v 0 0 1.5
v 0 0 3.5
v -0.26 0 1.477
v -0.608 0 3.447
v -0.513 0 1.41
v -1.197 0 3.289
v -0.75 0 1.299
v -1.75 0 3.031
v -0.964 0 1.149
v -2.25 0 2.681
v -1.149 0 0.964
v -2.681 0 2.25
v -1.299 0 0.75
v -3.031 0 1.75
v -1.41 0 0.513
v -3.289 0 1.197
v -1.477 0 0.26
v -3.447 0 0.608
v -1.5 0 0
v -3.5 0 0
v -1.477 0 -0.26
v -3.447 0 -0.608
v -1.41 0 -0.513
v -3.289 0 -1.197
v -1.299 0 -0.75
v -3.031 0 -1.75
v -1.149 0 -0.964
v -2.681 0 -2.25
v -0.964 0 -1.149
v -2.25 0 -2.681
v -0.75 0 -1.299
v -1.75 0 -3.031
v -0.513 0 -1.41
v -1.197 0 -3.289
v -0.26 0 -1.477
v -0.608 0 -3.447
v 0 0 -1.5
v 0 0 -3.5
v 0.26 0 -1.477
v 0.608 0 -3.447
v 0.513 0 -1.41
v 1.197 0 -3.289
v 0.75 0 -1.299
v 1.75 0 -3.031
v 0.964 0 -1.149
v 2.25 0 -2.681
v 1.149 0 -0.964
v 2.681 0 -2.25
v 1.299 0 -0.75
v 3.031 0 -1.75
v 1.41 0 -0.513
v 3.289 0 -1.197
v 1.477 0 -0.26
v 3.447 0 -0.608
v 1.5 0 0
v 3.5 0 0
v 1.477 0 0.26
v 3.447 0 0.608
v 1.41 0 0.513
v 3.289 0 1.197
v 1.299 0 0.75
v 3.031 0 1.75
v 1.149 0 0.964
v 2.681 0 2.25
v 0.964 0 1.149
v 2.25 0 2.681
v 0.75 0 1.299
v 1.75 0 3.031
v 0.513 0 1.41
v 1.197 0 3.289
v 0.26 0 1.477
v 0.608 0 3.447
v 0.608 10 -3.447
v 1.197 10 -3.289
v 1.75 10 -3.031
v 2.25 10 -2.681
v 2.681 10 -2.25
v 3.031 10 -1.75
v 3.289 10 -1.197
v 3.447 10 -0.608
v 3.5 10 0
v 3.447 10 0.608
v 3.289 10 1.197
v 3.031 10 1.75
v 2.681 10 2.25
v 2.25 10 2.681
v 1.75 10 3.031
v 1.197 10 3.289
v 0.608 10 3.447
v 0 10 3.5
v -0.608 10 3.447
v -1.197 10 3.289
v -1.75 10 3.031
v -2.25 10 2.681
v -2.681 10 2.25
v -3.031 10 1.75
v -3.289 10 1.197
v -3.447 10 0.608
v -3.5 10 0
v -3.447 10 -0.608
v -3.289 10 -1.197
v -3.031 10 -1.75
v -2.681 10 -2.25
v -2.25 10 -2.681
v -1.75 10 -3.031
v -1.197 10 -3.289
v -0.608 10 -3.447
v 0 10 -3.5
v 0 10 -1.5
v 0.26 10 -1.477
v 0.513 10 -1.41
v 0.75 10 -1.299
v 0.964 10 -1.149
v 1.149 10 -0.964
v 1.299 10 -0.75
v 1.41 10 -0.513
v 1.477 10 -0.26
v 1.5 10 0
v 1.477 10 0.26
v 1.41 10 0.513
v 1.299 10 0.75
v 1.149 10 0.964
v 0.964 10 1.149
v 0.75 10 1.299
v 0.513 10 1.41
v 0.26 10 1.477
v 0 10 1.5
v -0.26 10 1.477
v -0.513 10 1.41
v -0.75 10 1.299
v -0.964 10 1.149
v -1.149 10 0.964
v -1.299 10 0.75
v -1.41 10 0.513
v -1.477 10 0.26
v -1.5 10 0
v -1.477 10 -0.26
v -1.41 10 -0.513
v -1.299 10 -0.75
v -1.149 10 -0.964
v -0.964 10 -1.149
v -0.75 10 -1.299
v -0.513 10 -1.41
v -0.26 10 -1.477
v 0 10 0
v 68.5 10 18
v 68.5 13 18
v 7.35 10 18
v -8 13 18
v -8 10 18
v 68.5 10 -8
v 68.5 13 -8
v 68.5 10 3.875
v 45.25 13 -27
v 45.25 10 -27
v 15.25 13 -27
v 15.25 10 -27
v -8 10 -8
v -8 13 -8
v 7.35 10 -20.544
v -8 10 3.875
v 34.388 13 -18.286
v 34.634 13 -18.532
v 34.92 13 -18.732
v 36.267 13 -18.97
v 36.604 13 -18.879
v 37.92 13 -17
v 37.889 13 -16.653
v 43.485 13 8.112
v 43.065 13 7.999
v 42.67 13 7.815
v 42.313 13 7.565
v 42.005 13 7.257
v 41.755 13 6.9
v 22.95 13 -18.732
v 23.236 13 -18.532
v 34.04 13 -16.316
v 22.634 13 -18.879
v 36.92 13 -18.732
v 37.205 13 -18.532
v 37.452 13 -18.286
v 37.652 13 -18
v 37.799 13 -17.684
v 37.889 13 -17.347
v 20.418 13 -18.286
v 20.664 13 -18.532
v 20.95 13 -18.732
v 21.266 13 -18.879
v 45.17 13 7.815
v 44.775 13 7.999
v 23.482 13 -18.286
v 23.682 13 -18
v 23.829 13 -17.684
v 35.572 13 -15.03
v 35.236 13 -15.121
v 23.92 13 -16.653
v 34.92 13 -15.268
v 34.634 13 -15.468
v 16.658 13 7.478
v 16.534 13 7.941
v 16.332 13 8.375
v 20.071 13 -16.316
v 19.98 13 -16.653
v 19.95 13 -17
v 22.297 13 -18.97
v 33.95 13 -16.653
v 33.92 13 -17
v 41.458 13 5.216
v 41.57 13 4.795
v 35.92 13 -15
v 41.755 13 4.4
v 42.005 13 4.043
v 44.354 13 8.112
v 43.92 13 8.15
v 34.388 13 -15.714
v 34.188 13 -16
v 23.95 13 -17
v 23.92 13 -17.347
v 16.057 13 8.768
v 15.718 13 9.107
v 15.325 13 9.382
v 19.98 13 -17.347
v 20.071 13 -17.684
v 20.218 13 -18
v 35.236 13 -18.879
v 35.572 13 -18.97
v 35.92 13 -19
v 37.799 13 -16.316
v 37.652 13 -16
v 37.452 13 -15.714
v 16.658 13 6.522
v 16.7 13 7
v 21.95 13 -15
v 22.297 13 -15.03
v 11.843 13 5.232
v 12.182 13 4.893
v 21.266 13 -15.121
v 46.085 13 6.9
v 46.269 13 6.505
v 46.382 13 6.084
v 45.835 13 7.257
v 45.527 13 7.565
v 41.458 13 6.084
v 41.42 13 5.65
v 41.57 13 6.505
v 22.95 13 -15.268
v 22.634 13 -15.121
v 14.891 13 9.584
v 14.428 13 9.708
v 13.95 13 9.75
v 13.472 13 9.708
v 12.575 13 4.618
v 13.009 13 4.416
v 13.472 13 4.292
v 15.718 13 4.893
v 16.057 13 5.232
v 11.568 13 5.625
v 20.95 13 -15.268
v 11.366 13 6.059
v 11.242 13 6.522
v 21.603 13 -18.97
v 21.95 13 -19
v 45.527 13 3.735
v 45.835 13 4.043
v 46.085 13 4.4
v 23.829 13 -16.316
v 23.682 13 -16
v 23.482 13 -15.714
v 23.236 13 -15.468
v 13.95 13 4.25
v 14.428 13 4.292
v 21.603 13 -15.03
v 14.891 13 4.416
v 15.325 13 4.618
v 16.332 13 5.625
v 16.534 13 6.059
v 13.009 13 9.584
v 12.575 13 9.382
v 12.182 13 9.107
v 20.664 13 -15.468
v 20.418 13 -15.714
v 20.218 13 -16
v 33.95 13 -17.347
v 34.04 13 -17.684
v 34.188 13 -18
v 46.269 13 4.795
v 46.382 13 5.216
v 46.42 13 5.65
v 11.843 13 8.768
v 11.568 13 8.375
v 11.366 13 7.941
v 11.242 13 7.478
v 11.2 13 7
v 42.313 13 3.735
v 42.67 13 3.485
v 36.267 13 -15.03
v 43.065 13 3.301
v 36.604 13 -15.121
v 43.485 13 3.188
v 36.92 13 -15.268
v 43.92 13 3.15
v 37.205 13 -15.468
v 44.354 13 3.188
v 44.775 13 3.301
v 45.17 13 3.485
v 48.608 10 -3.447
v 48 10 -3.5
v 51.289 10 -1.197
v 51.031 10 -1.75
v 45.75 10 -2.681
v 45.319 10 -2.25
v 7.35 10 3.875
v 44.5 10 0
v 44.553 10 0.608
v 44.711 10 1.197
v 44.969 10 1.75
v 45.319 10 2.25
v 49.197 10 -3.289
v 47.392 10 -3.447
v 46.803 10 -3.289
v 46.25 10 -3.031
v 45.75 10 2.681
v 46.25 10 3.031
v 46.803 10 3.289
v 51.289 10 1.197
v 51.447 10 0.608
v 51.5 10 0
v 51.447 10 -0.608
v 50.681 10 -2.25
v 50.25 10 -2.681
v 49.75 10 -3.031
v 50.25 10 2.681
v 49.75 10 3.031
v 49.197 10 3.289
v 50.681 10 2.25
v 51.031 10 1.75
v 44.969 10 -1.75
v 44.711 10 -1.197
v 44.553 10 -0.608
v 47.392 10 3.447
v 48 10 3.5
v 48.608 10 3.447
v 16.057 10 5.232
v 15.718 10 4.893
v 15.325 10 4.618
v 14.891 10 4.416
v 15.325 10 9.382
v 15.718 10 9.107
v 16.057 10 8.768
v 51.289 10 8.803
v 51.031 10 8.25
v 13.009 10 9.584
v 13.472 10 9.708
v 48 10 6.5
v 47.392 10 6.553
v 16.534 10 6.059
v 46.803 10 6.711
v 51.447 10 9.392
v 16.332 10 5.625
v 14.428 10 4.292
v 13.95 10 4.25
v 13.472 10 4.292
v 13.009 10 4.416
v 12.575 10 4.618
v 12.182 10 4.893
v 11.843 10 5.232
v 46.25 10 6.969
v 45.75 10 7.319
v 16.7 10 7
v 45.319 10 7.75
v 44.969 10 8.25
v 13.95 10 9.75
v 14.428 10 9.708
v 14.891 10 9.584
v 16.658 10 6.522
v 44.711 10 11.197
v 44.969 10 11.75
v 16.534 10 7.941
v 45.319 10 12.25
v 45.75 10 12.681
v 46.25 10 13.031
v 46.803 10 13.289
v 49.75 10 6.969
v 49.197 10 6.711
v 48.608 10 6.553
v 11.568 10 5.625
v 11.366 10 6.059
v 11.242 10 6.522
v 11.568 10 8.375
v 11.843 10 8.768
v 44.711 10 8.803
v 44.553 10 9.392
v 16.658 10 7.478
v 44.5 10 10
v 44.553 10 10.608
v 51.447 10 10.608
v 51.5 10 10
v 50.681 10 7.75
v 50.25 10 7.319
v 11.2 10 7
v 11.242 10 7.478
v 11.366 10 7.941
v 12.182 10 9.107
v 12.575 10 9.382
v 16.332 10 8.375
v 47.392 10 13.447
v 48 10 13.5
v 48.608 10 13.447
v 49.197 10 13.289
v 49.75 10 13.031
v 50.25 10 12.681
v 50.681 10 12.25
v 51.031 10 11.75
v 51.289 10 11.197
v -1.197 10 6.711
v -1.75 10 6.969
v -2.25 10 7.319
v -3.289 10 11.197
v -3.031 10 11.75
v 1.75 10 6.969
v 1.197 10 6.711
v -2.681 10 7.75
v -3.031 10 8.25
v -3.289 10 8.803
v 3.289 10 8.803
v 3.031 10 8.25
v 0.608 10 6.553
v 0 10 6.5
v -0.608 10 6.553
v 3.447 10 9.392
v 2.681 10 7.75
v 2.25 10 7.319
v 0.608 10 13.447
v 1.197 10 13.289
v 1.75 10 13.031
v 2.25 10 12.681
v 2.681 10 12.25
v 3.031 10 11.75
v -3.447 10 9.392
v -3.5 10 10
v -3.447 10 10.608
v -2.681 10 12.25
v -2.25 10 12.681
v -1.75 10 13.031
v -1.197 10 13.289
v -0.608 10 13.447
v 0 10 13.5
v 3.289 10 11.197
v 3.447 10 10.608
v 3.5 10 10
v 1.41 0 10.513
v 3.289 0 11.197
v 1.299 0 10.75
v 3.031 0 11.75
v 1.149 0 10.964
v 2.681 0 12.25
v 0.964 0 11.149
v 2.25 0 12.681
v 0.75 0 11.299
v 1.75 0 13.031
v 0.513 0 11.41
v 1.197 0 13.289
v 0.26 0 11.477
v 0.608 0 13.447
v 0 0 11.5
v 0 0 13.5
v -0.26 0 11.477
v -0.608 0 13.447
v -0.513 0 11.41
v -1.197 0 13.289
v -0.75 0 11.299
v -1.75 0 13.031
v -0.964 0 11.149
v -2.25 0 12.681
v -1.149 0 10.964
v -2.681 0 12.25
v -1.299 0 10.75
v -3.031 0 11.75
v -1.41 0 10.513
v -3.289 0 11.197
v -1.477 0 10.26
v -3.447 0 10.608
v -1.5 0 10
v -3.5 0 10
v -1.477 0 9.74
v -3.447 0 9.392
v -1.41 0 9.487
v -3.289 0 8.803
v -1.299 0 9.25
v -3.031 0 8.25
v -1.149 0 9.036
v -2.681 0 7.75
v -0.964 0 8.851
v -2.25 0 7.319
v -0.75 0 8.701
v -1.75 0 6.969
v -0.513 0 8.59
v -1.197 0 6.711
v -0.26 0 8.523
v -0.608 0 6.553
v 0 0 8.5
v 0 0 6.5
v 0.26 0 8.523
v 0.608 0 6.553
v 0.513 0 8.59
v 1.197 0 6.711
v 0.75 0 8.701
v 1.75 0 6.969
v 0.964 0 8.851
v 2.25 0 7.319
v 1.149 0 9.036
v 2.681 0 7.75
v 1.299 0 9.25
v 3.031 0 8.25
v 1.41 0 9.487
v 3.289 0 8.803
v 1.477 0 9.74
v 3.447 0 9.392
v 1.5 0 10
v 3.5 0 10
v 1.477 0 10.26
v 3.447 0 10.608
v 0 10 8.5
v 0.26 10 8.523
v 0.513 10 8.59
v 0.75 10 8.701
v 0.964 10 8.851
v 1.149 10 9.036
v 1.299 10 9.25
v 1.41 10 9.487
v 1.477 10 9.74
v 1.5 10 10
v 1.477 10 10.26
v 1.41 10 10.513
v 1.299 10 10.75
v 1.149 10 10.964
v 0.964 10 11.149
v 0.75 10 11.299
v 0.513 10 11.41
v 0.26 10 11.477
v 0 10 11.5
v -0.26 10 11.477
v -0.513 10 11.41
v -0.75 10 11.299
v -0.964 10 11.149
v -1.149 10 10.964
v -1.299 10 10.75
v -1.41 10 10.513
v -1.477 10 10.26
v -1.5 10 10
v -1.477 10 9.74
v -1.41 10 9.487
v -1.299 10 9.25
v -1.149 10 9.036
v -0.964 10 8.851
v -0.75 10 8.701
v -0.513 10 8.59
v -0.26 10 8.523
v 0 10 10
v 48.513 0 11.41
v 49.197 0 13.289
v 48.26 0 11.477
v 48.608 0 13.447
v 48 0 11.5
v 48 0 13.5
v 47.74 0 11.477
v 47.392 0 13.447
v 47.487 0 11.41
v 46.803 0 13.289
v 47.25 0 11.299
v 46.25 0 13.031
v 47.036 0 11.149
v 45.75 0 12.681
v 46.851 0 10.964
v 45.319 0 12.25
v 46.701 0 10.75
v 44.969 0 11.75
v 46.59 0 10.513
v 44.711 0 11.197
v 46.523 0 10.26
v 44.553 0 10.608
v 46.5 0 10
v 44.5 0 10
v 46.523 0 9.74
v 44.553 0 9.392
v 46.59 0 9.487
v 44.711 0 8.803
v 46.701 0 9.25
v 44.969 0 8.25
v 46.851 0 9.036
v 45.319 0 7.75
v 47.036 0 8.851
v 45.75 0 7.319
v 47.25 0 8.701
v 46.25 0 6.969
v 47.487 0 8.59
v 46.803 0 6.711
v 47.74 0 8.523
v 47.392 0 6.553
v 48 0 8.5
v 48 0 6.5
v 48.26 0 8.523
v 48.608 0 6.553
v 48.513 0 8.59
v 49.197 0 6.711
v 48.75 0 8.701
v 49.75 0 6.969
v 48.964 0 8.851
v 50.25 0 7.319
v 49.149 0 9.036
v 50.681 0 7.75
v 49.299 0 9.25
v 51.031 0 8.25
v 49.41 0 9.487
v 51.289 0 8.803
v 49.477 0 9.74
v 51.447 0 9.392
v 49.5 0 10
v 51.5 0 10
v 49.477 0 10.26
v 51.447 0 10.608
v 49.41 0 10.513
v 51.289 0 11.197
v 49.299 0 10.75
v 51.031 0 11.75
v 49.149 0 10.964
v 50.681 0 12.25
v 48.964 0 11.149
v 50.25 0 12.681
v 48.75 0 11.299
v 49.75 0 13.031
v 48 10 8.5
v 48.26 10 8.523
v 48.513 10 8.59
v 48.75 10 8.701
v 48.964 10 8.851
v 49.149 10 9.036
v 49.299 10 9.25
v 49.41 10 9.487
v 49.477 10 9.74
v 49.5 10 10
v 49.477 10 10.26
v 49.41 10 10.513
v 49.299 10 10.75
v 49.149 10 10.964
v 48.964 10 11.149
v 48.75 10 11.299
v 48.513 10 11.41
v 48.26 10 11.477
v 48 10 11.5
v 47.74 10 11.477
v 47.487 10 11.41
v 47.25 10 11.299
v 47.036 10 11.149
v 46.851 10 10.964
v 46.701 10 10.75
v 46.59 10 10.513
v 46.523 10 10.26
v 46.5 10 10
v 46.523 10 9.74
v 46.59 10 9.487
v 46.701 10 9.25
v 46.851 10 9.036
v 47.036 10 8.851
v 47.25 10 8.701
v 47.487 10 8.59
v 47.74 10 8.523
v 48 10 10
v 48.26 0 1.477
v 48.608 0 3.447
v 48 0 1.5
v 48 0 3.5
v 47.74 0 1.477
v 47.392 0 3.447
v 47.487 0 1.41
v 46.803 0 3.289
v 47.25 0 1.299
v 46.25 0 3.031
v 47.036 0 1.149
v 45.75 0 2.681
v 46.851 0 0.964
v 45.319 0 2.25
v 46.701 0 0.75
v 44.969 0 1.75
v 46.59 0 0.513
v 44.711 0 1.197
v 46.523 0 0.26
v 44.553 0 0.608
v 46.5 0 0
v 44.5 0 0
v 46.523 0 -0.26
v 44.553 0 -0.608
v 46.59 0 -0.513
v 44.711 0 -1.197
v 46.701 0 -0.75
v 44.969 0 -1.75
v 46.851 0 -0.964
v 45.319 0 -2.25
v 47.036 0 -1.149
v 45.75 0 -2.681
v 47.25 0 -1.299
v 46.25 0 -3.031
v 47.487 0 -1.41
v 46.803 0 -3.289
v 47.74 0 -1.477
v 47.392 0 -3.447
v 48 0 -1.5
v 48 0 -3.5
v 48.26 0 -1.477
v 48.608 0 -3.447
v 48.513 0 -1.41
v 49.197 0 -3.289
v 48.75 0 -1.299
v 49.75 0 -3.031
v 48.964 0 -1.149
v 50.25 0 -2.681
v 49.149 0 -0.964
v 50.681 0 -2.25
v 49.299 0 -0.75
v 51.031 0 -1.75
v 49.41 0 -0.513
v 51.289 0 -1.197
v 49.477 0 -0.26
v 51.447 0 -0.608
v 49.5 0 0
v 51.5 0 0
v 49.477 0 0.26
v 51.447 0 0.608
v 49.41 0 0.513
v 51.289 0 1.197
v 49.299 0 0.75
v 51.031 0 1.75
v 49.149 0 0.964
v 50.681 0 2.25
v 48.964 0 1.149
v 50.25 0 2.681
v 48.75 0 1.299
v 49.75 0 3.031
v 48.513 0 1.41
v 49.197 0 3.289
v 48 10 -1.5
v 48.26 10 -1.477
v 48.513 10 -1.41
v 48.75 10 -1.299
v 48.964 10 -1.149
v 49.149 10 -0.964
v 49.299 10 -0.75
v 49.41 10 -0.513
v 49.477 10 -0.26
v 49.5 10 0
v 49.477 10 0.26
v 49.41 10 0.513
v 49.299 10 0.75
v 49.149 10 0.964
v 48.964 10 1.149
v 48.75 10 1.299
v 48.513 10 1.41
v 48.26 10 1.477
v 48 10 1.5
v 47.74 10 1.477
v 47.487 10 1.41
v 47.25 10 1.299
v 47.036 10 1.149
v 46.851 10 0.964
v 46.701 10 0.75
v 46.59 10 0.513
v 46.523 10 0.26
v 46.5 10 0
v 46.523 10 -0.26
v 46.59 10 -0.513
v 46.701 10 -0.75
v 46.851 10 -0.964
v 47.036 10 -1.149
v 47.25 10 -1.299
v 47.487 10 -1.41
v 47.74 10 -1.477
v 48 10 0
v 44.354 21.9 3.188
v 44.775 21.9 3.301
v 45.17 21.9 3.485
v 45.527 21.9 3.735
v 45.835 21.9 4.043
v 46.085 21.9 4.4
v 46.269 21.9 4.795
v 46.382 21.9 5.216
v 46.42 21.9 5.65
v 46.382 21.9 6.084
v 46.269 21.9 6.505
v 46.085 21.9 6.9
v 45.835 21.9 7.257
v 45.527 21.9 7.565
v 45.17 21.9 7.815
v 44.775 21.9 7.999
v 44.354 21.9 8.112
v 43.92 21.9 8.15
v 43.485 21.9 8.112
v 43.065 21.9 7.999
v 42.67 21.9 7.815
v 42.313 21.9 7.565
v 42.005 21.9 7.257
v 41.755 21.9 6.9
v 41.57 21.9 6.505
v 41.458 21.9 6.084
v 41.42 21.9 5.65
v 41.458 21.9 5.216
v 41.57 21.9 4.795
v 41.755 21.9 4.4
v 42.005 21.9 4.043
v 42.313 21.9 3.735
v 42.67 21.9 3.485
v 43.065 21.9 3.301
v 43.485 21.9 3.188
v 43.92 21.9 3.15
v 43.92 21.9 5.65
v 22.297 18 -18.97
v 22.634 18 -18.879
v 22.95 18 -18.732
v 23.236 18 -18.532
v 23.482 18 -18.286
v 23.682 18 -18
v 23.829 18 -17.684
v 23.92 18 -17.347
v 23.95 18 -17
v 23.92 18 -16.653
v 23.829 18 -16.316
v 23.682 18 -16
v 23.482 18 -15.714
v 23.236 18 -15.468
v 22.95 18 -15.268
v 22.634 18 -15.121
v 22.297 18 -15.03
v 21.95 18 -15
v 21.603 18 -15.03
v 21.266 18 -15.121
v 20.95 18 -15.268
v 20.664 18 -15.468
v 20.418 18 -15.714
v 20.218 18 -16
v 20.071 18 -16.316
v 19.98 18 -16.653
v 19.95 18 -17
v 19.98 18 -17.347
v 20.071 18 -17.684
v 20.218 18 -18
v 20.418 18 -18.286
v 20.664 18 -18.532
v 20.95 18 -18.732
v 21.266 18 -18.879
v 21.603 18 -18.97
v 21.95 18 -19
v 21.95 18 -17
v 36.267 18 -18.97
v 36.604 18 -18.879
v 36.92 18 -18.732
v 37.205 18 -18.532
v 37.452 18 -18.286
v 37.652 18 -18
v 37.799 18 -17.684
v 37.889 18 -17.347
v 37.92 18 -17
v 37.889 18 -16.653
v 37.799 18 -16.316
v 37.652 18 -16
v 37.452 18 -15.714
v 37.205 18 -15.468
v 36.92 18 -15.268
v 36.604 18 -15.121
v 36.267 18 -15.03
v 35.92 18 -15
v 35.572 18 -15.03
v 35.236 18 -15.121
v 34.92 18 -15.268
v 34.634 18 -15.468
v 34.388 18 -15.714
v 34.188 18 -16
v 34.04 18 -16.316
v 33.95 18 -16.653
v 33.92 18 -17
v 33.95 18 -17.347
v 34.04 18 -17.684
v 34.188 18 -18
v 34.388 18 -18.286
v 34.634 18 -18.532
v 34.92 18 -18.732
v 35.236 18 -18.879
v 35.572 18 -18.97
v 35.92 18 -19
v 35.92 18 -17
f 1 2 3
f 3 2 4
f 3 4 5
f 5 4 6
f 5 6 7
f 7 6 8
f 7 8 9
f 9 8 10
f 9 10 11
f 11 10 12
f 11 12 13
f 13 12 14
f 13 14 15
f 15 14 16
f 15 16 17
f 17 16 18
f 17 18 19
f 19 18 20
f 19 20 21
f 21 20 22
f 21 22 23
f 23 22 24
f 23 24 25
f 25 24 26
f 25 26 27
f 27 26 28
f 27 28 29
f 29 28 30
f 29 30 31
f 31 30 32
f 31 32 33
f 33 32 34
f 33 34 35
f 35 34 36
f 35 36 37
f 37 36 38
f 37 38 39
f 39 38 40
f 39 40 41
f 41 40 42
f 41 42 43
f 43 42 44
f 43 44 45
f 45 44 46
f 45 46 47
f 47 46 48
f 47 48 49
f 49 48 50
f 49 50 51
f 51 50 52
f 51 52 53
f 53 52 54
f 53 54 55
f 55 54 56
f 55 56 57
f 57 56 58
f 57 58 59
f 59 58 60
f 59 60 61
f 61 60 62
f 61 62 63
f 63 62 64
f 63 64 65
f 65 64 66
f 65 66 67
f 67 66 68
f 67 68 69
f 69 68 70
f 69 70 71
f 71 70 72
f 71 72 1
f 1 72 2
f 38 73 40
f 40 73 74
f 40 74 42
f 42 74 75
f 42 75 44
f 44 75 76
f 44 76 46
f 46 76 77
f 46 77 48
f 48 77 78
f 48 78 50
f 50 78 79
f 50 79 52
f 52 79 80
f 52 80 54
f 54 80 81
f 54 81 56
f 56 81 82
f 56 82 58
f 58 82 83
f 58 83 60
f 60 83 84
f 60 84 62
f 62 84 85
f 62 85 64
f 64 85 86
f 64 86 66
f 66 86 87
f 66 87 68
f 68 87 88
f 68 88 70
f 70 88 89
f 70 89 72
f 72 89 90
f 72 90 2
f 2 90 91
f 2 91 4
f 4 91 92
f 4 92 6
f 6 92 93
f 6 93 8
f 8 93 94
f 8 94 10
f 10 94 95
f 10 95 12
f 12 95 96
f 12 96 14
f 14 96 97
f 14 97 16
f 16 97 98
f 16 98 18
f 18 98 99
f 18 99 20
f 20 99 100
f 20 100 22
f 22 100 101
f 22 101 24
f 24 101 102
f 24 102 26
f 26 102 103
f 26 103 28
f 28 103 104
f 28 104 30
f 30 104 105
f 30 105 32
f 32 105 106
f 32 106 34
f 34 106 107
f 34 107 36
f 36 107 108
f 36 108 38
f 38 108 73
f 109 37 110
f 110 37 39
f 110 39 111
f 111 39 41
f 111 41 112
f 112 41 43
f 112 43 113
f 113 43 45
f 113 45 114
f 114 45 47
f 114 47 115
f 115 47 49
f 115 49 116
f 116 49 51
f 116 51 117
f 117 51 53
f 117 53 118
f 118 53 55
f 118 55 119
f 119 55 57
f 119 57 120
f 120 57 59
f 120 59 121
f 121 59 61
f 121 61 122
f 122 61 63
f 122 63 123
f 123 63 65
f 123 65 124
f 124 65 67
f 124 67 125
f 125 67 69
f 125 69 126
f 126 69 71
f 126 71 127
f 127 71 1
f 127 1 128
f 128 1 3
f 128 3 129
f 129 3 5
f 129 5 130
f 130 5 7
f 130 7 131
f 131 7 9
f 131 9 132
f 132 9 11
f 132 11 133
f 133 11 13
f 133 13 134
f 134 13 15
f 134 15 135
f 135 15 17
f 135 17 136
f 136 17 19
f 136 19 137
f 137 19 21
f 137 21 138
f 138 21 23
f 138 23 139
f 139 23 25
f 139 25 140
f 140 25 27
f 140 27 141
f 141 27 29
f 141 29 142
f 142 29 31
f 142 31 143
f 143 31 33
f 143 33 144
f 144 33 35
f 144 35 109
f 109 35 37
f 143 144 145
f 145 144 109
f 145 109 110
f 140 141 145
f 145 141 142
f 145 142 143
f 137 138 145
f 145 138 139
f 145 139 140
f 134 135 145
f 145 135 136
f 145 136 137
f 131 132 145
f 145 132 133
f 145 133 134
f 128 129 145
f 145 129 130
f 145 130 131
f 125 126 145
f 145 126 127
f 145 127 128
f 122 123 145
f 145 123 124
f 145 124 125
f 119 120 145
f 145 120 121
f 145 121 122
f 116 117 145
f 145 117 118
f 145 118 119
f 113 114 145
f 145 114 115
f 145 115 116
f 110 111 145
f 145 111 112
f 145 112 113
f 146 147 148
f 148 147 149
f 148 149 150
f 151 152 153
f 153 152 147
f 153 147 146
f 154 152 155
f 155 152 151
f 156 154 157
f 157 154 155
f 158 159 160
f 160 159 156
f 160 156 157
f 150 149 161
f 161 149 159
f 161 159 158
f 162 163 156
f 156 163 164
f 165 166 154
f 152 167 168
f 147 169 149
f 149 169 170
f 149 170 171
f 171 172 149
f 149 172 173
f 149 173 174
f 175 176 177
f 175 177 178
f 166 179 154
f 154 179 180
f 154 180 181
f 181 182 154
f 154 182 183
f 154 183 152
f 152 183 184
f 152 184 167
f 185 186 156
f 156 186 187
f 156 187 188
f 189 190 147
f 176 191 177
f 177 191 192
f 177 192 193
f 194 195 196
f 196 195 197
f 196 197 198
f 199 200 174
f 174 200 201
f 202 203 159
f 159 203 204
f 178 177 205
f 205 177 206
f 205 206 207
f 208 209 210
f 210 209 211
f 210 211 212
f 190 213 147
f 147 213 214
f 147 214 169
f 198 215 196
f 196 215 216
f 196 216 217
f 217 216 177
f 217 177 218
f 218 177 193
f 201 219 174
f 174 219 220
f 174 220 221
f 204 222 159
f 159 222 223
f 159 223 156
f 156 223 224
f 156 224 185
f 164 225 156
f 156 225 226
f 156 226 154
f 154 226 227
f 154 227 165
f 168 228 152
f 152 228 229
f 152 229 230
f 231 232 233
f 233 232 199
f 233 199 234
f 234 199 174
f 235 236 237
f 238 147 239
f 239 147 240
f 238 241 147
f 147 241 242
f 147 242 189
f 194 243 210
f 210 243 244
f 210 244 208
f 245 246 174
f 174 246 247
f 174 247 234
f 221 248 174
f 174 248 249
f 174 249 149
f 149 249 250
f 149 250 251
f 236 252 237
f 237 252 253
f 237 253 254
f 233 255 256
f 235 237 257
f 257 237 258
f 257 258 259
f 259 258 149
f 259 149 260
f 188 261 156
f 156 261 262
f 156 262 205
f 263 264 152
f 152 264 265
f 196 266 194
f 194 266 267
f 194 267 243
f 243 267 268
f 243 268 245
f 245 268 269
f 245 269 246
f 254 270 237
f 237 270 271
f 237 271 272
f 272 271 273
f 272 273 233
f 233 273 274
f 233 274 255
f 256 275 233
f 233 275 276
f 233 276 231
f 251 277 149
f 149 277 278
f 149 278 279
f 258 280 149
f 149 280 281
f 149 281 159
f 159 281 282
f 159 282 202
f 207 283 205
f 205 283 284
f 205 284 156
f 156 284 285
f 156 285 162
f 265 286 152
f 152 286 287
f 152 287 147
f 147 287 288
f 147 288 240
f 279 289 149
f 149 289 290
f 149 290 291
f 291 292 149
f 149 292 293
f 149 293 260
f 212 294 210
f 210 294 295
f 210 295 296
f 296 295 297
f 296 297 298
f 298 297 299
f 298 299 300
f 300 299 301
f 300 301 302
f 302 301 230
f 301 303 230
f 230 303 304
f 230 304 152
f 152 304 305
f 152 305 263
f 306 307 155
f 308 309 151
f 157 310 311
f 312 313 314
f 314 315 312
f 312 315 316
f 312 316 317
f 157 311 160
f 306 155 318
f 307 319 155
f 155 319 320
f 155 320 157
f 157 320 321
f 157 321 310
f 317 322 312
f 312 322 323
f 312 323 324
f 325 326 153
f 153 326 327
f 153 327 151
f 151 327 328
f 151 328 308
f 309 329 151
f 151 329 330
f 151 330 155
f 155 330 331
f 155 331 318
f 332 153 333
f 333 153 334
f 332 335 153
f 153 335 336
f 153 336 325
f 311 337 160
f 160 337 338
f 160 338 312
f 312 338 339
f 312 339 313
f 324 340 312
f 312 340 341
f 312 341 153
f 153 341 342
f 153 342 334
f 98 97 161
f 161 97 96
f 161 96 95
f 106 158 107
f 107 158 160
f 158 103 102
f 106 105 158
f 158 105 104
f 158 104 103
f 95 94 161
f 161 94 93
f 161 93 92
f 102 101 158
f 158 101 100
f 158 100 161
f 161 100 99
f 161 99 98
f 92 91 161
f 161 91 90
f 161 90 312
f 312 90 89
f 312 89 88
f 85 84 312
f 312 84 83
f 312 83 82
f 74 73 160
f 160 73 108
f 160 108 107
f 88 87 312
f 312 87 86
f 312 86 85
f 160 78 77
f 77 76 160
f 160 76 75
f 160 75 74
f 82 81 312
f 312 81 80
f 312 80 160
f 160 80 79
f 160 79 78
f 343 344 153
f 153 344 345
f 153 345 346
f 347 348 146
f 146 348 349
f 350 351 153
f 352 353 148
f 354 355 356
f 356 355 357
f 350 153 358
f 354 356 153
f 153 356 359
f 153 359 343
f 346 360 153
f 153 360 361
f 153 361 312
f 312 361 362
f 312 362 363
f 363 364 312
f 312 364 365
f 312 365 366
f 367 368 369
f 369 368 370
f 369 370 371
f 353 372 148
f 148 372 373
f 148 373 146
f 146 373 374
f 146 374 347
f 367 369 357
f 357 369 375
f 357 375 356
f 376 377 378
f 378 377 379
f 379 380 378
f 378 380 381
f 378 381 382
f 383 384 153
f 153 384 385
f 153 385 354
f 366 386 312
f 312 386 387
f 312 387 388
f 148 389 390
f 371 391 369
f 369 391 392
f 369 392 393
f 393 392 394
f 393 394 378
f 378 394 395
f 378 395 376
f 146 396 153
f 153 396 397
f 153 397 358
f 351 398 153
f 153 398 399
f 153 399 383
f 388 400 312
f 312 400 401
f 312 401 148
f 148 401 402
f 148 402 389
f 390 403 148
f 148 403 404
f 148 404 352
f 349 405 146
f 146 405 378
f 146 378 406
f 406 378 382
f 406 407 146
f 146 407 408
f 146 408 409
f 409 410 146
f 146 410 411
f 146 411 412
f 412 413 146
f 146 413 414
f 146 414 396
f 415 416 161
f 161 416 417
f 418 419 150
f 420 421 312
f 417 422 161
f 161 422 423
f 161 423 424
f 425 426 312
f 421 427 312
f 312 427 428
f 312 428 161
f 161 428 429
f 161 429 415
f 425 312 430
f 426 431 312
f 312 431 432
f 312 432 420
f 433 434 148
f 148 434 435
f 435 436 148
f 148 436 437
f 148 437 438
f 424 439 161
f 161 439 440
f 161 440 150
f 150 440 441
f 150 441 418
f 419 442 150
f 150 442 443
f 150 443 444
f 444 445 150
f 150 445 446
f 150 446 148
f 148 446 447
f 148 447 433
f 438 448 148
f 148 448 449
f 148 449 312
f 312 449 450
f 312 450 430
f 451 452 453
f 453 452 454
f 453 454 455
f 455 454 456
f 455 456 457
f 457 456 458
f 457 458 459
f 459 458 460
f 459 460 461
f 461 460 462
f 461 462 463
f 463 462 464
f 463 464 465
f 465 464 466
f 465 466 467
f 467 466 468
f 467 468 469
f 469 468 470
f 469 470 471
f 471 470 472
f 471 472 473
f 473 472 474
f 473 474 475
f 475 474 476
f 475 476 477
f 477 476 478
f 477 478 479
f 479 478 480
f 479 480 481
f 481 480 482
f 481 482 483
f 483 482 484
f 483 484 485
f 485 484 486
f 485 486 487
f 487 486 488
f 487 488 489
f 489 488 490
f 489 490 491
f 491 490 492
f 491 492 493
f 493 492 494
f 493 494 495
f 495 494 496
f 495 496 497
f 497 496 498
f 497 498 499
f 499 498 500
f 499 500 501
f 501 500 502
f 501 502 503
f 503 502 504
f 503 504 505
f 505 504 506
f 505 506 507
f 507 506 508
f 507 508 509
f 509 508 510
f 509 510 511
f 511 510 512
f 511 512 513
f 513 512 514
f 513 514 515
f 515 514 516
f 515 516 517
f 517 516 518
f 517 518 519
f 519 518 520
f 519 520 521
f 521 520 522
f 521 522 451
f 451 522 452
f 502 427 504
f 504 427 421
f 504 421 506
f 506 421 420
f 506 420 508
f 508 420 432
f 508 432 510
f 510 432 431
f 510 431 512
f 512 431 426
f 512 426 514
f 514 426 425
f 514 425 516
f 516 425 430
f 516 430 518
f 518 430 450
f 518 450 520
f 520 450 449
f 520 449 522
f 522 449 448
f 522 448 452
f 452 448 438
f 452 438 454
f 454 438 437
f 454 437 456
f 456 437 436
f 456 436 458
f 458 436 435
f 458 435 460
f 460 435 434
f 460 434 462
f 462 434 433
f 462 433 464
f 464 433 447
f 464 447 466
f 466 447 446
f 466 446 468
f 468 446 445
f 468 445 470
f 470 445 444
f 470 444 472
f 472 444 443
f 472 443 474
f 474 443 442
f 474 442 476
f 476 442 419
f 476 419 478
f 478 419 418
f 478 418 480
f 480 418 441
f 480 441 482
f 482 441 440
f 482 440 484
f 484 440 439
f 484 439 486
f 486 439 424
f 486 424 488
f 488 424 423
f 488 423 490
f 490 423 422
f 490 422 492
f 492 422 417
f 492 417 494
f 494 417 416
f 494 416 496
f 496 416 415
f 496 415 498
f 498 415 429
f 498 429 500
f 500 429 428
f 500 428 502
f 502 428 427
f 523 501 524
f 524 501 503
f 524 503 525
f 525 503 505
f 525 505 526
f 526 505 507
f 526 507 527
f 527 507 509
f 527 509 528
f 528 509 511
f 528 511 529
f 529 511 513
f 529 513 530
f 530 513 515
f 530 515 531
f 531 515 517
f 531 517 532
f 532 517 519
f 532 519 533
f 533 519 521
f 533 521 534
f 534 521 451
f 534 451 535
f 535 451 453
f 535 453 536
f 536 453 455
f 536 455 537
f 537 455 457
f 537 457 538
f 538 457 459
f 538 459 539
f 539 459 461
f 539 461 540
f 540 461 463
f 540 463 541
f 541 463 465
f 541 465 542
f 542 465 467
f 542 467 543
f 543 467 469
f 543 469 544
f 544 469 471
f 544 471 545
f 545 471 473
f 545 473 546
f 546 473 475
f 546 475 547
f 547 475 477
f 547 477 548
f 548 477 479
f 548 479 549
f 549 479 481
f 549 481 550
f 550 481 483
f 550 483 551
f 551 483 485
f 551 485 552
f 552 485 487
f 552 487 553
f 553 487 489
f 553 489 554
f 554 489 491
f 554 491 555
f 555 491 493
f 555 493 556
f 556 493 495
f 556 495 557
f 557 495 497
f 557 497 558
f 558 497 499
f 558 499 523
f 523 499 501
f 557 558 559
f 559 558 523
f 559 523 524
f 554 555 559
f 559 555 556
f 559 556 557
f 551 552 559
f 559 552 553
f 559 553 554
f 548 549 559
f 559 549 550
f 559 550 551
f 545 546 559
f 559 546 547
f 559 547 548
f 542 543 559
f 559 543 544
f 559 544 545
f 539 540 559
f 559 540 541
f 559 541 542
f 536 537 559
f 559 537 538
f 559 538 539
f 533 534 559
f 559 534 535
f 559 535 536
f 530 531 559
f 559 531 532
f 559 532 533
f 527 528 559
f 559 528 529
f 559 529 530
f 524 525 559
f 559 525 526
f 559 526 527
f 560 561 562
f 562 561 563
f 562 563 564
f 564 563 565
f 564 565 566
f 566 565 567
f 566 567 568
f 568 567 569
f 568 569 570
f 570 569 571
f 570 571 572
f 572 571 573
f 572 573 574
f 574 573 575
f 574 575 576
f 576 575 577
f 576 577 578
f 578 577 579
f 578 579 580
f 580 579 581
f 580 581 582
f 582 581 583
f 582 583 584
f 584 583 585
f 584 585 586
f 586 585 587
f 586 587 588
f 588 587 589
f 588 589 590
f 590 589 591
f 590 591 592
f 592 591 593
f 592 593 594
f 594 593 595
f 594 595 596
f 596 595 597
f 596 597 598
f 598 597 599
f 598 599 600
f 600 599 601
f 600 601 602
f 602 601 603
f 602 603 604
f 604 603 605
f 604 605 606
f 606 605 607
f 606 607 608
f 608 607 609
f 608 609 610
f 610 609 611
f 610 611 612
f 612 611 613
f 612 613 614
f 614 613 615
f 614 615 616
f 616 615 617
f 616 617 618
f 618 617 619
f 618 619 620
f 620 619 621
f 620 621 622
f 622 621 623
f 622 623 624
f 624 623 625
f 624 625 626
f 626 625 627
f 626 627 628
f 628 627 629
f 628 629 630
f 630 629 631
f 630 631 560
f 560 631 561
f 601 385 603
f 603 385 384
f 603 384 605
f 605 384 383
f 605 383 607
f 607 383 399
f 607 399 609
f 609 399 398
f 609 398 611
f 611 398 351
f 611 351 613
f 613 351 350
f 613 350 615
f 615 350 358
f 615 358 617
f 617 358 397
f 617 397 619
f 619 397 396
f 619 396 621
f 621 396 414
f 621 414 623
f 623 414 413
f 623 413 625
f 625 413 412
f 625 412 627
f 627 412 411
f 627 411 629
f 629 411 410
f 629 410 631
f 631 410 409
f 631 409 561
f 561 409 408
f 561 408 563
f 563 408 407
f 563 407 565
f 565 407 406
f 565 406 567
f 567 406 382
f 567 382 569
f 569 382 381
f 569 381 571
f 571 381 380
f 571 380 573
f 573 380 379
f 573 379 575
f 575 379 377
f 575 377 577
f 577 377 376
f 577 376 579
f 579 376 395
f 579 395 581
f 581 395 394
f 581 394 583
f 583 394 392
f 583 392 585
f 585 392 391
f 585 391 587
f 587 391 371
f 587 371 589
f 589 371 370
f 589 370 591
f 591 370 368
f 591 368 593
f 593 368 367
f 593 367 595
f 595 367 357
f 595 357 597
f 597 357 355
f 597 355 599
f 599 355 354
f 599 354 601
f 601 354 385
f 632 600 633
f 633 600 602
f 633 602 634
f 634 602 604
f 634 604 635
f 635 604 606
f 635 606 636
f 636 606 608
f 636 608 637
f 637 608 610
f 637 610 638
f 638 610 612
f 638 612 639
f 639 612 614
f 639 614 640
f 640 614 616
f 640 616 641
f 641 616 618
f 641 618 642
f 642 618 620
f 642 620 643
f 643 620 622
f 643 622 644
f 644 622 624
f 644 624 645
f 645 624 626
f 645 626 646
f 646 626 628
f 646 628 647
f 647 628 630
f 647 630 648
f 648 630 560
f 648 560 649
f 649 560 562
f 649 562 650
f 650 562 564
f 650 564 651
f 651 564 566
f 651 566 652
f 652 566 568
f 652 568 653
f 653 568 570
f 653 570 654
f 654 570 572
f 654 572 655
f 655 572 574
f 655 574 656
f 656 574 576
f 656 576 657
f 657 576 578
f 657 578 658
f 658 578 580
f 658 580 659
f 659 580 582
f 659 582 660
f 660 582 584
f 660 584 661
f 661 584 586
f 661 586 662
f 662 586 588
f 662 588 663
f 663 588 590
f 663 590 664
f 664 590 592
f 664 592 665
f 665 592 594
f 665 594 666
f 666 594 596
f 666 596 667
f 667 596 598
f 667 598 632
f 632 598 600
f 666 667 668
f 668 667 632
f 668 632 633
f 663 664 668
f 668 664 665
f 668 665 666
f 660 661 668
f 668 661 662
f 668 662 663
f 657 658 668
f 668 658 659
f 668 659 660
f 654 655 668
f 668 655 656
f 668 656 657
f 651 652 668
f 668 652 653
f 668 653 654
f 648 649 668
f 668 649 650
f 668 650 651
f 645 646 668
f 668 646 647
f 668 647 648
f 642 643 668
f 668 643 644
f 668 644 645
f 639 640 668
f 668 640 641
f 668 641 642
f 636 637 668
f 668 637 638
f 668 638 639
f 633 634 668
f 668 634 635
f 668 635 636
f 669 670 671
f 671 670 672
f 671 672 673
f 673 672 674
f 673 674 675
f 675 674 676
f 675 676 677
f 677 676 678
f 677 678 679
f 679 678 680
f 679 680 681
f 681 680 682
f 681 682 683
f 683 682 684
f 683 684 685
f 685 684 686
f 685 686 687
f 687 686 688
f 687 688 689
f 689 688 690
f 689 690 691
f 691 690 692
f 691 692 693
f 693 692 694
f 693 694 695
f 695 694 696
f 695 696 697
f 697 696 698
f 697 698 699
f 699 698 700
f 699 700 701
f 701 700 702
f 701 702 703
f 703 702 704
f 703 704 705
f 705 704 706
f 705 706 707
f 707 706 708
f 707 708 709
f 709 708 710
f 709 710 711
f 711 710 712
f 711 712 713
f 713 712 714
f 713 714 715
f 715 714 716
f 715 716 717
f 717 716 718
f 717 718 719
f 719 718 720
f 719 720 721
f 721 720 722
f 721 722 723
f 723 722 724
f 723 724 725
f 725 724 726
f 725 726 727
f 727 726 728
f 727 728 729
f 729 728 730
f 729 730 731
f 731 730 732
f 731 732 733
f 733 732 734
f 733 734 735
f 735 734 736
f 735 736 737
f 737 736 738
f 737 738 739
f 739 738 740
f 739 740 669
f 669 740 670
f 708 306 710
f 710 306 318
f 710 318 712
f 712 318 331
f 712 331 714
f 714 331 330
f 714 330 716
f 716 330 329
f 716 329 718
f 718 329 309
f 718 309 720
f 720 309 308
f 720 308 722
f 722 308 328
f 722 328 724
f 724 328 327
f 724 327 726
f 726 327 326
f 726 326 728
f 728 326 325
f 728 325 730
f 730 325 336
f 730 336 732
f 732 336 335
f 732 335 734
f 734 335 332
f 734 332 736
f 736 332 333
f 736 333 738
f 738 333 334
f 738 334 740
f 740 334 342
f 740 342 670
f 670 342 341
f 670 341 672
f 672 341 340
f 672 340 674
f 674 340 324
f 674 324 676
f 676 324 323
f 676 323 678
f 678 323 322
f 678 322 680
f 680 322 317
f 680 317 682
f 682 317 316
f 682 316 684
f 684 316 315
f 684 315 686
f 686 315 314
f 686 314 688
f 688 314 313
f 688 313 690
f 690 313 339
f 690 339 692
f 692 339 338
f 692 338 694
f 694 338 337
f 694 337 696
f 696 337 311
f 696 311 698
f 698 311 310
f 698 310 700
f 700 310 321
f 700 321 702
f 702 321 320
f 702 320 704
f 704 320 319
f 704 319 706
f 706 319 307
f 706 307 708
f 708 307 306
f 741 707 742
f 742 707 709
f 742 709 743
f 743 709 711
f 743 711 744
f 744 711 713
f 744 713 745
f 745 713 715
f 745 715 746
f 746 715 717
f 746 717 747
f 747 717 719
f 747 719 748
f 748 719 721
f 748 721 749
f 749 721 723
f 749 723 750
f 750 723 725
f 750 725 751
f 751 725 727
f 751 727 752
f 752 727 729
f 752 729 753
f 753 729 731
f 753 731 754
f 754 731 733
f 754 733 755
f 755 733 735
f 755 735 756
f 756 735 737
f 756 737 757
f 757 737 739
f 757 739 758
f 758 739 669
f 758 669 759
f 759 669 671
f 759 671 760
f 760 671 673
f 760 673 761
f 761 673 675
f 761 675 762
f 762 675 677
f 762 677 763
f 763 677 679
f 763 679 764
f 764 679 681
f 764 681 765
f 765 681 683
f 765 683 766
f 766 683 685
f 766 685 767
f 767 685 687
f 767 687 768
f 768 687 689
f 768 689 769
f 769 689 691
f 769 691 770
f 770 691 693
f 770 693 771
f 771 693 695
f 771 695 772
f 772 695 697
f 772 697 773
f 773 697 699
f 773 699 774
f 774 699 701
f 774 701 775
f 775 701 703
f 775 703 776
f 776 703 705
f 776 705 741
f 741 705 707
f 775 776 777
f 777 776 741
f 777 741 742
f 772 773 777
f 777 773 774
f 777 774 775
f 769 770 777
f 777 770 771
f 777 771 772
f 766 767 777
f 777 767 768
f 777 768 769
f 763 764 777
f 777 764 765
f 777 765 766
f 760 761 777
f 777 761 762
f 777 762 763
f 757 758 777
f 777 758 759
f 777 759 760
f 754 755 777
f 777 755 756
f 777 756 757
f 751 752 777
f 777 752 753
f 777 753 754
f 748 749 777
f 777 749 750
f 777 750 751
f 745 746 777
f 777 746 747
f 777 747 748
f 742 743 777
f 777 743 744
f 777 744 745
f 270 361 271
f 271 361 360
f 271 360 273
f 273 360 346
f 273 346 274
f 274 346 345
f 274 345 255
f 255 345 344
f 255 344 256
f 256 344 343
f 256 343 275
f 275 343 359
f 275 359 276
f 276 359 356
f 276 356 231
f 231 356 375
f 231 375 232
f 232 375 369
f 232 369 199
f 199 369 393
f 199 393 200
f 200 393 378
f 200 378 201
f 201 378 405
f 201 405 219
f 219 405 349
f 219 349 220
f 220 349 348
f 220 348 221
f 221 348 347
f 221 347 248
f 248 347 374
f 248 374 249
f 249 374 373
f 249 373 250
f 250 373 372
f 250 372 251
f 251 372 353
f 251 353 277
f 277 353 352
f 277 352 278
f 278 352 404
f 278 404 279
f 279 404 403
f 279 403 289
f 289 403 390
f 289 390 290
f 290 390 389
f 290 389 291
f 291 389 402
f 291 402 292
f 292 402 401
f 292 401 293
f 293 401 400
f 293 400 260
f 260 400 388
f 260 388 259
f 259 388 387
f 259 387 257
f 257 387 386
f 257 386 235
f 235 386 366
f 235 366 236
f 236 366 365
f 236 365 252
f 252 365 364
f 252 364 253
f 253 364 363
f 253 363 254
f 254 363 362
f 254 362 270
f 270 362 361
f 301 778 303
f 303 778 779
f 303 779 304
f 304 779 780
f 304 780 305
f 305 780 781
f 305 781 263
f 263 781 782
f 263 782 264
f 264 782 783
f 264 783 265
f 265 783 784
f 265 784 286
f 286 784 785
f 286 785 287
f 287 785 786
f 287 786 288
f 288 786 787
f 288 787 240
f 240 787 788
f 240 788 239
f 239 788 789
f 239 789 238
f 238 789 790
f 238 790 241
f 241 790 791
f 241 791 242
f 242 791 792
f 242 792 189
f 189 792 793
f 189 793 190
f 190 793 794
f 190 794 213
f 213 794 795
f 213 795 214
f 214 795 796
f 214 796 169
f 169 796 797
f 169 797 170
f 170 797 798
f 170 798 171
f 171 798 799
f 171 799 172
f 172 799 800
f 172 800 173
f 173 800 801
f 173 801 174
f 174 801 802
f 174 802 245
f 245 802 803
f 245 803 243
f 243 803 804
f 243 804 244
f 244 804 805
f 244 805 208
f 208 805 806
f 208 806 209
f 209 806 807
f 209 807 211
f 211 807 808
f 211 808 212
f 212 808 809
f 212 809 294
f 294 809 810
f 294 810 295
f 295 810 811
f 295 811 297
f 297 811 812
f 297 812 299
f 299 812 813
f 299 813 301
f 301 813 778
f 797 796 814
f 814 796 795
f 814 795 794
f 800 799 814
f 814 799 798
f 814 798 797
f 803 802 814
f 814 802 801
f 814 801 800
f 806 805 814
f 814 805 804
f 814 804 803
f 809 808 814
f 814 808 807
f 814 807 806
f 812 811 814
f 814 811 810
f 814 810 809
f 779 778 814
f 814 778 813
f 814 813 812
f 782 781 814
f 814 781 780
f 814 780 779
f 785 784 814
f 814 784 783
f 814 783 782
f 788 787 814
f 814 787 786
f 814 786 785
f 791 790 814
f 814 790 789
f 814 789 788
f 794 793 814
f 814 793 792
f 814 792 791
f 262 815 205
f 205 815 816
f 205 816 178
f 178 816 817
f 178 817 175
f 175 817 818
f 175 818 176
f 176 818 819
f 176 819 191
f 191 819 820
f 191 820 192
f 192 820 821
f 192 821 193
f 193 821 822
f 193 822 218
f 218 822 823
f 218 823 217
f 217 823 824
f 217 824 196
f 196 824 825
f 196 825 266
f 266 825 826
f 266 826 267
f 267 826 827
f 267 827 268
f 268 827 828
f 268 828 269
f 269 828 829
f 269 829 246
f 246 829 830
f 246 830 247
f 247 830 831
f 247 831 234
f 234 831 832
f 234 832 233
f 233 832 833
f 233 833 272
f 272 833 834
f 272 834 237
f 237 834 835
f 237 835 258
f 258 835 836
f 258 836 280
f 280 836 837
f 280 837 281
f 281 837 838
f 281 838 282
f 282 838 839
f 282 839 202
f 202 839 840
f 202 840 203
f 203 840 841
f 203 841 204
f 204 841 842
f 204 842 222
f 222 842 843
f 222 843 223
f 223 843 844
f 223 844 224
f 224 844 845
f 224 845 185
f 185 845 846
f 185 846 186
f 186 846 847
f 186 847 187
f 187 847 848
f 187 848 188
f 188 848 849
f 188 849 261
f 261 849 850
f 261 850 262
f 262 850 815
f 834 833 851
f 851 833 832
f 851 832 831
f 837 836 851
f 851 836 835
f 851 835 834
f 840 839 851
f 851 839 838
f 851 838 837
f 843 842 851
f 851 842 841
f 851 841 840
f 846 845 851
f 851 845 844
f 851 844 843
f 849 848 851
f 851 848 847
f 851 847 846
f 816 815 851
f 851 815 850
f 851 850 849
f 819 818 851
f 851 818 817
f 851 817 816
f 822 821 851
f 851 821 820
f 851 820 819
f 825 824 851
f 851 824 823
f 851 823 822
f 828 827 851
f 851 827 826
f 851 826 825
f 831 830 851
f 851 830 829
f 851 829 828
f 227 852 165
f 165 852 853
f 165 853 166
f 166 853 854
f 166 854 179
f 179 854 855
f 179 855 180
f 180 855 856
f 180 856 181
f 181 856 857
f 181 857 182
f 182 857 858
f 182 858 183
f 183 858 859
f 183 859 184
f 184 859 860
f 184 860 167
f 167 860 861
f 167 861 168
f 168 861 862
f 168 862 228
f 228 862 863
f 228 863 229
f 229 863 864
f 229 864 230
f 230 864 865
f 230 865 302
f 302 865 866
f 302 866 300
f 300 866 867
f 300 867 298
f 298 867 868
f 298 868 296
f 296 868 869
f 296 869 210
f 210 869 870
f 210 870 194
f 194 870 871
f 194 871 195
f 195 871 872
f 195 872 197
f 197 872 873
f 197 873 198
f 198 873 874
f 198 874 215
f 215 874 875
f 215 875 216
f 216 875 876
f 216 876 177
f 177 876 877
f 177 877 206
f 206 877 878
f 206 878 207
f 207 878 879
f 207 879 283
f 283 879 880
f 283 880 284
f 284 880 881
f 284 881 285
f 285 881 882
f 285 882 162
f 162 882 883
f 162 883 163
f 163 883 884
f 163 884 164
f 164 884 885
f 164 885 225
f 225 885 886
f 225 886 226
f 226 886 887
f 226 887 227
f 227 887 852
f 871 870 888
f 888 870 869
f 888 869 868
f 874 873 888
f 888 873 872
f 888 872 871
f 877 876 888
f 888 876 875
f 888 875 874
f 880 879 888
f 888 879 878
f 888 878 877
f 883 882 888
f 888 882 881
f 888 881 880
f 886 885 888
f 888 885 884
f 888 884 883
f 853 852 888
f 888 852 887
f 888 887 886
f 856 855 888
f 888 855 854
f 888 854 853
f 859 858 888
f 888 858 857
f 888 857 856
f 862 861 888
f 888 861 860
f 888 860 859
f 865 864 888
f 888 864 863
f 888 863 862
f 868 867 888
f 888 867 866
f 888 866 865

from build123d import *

# Parameters (mm, degrees)
SKETCH1_R             = 3.5
SKETCH1_R_2           = 1.5
BOSS_EXTRUDE1_DEPTH   = 10
BOSS_EXTRUDE1_2_DEPTH = 10
BOSS_EXTRUDE1_3_DEPTH = 10
BOSS_EXTRUDE1_4_DEPTH = 10
BOSS_EXTRUDE2_DEPTH   = 3
SKETCH3_R             = 2.75
CUT_EXTRUDE1_DEPTH    = 4
SKETCH4_R             = 2.5
BOSS_EXTRUDE3_DEPTH   = 8.9
SKETCH5_R             = 2
BOSS_EXTRUDE4_DEPTH   = 5


with BuildPart() as part:
    # Sketch1 → Boss-Extrude1 (new body)
    with BuildSketch(Plane(origin=(0, 0, 0), x_dir=(1, 0, 0), z_dir=(0, 1, 0))):
        with Locations(Location((0, 0, 0), (0, 0, 270))):
            Circle(SKETCH1_R)
        with Locations(Location((0, 0, 0), (0, 0, 270))):
            Circle(SKETCH1_R_2, mode=Mode.SUBTRACT)
    extrude(amount=BOSS_EXTRUDE1_DEPTH)



with BuildPart() as body_2:
    # Sketch1 → Boss-Extrude1 2 (new body)
    with BuildSketch(Plane(origin=(0, 0, 0), x_dir=(1, 0, 0), z_dir=(0, 1, 0))):
        with Locations(Location((0, -10, 0), (0, 0, 270))):
            Circle(SKETCH1_R)
        with Locations(Location((0, -10, 0), (0, 0, 270))):
            Circle(SKETCH1_R_2, mode=Mode.SUBTRACT)
    extrude(amount=BOSS_EXTRUDE1_2_DEPTH)


with BuildPart() as body_3:
    # Sketch1 → Boss-Extrude1 3 (new body)
    with BuildSketch(Plane(origin=(0, 0, 0), x_dir=(1, 0, 0), z_dir=(0, 1, 0))):
        with Locations(Location((48, -10, 0), (0, 0, 270))):
            Circle(SKETCH1_R)
        with Locations(Location((48, -10, 0), (0, 0, 270))):
            Circle(SKETCH1_R_2, mode=Mode.SUBTRACT)
    extrude(amount=BOSS_EXTRUDE1_3_DEPTH)


with BuildPart() as body_4:
    # Sketch1 → Boss-Extrude1 4 (new body)
    with BuildSketch(Plane(origin=(0, 0, 0), x_dir=(1, 0, 0), z_dir=(0, 1, 0))):
        with Locations(Location((48, 0, 0), (0, 0, 270))):
            Circle(SKETCH1_R)
        with Locations(Location((48, 0, 0), (0, 0, 270))):
            Circle(SKETCH1_R_2, mode=Mode.SUBTRACT)
    extrude(amount=BOSS_EXTRUDE1_4_DEPTH)


with BuildPart() as part_1:
    add(part.part)

    add(body_2.part)  # Boss-Extrude2 merges body 2

    add(body_3.part)  # Boss-Extrude2 merges body 3

    add(body_4.part)  # Boss-Extrude2 merges body 4
    # Sketch2 → Boss-Extrude2 (add)
    with BuildSketch(Plane(origin=(0, 10, 0), x_dir=(1, 0, 0), z_dir=(0, 1, 0))):
        Polygon((-8, -18), (-8, 8), (15.25, 27), (45.25, 27), (68.5, 8), (68.5, -18), align=None)
    extrude(amount=BOSS_EXTRUDE2_DEPTH)

    # Sketch3 → Cut-Extrude1 (cut)
    with BuildSketch(Plane.XZ.offset(-10)):
        with Locations(Location((13.95, 7, 0), (0, 0, 270))):
            Circle(SKETCH3_R)
    extrude(amount=-CUT_EXTRUDE1_DEPTH, mode=Mode.SUBTRACT)

    # Sketch4 → Boss-Extrude3 (add)
    with BuildSketch(Plane(origin=(0, 13, 0), x_dir=(1, 0, 0), z_dir=(0, 1, 0))):
        with Locations(Location((43.919609607, -5.65, 0), (0, 0, 90))):
            Circle(SKETCH4_R)
    extrude(amount=BOSS_EXTRUDE3_DEPTH)

    # Sketch5 → Boss-Extrude4 (add)
    with BuildSketch(Plane(origin=(0, 13, 0), x_dir=(1, 0, 0), z_dir=(0, 1, 0))):
        with Locations(Location((21.95, 17, 0), (0, 0, 90))):
            Circle(SKETCH5_R)
        with Locations(Location((35.919609607, 17, 0), (0, 0, 90))):
            Circle(SKETCH5_R)
    extrude(amount=BOSS_EXTRUDE4_DEPTH)


solid = part_1.part
